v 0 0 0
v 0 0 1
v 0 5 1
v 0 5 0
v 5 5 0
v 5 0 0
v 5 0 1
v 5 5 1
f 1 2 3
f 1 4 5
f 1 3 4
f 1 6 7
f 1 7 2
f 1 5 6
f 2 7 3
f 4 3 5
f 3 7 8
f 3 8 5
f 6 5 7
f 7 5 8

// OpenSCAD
/* Warning, this is a very basic generator with a lot of approximation 
input data : [VQFN, PLX, 5x5x1.0mm, 24, , B, C04-00525B]
generated by com.zoubworld.electronics.cad.model3d.Basic
Date : Sun Feb 15 10:50:48 CET 2026
*/

//body
color("black")
translate([0,0,0])
cube([5.0,5.0,1.0], center=false);
